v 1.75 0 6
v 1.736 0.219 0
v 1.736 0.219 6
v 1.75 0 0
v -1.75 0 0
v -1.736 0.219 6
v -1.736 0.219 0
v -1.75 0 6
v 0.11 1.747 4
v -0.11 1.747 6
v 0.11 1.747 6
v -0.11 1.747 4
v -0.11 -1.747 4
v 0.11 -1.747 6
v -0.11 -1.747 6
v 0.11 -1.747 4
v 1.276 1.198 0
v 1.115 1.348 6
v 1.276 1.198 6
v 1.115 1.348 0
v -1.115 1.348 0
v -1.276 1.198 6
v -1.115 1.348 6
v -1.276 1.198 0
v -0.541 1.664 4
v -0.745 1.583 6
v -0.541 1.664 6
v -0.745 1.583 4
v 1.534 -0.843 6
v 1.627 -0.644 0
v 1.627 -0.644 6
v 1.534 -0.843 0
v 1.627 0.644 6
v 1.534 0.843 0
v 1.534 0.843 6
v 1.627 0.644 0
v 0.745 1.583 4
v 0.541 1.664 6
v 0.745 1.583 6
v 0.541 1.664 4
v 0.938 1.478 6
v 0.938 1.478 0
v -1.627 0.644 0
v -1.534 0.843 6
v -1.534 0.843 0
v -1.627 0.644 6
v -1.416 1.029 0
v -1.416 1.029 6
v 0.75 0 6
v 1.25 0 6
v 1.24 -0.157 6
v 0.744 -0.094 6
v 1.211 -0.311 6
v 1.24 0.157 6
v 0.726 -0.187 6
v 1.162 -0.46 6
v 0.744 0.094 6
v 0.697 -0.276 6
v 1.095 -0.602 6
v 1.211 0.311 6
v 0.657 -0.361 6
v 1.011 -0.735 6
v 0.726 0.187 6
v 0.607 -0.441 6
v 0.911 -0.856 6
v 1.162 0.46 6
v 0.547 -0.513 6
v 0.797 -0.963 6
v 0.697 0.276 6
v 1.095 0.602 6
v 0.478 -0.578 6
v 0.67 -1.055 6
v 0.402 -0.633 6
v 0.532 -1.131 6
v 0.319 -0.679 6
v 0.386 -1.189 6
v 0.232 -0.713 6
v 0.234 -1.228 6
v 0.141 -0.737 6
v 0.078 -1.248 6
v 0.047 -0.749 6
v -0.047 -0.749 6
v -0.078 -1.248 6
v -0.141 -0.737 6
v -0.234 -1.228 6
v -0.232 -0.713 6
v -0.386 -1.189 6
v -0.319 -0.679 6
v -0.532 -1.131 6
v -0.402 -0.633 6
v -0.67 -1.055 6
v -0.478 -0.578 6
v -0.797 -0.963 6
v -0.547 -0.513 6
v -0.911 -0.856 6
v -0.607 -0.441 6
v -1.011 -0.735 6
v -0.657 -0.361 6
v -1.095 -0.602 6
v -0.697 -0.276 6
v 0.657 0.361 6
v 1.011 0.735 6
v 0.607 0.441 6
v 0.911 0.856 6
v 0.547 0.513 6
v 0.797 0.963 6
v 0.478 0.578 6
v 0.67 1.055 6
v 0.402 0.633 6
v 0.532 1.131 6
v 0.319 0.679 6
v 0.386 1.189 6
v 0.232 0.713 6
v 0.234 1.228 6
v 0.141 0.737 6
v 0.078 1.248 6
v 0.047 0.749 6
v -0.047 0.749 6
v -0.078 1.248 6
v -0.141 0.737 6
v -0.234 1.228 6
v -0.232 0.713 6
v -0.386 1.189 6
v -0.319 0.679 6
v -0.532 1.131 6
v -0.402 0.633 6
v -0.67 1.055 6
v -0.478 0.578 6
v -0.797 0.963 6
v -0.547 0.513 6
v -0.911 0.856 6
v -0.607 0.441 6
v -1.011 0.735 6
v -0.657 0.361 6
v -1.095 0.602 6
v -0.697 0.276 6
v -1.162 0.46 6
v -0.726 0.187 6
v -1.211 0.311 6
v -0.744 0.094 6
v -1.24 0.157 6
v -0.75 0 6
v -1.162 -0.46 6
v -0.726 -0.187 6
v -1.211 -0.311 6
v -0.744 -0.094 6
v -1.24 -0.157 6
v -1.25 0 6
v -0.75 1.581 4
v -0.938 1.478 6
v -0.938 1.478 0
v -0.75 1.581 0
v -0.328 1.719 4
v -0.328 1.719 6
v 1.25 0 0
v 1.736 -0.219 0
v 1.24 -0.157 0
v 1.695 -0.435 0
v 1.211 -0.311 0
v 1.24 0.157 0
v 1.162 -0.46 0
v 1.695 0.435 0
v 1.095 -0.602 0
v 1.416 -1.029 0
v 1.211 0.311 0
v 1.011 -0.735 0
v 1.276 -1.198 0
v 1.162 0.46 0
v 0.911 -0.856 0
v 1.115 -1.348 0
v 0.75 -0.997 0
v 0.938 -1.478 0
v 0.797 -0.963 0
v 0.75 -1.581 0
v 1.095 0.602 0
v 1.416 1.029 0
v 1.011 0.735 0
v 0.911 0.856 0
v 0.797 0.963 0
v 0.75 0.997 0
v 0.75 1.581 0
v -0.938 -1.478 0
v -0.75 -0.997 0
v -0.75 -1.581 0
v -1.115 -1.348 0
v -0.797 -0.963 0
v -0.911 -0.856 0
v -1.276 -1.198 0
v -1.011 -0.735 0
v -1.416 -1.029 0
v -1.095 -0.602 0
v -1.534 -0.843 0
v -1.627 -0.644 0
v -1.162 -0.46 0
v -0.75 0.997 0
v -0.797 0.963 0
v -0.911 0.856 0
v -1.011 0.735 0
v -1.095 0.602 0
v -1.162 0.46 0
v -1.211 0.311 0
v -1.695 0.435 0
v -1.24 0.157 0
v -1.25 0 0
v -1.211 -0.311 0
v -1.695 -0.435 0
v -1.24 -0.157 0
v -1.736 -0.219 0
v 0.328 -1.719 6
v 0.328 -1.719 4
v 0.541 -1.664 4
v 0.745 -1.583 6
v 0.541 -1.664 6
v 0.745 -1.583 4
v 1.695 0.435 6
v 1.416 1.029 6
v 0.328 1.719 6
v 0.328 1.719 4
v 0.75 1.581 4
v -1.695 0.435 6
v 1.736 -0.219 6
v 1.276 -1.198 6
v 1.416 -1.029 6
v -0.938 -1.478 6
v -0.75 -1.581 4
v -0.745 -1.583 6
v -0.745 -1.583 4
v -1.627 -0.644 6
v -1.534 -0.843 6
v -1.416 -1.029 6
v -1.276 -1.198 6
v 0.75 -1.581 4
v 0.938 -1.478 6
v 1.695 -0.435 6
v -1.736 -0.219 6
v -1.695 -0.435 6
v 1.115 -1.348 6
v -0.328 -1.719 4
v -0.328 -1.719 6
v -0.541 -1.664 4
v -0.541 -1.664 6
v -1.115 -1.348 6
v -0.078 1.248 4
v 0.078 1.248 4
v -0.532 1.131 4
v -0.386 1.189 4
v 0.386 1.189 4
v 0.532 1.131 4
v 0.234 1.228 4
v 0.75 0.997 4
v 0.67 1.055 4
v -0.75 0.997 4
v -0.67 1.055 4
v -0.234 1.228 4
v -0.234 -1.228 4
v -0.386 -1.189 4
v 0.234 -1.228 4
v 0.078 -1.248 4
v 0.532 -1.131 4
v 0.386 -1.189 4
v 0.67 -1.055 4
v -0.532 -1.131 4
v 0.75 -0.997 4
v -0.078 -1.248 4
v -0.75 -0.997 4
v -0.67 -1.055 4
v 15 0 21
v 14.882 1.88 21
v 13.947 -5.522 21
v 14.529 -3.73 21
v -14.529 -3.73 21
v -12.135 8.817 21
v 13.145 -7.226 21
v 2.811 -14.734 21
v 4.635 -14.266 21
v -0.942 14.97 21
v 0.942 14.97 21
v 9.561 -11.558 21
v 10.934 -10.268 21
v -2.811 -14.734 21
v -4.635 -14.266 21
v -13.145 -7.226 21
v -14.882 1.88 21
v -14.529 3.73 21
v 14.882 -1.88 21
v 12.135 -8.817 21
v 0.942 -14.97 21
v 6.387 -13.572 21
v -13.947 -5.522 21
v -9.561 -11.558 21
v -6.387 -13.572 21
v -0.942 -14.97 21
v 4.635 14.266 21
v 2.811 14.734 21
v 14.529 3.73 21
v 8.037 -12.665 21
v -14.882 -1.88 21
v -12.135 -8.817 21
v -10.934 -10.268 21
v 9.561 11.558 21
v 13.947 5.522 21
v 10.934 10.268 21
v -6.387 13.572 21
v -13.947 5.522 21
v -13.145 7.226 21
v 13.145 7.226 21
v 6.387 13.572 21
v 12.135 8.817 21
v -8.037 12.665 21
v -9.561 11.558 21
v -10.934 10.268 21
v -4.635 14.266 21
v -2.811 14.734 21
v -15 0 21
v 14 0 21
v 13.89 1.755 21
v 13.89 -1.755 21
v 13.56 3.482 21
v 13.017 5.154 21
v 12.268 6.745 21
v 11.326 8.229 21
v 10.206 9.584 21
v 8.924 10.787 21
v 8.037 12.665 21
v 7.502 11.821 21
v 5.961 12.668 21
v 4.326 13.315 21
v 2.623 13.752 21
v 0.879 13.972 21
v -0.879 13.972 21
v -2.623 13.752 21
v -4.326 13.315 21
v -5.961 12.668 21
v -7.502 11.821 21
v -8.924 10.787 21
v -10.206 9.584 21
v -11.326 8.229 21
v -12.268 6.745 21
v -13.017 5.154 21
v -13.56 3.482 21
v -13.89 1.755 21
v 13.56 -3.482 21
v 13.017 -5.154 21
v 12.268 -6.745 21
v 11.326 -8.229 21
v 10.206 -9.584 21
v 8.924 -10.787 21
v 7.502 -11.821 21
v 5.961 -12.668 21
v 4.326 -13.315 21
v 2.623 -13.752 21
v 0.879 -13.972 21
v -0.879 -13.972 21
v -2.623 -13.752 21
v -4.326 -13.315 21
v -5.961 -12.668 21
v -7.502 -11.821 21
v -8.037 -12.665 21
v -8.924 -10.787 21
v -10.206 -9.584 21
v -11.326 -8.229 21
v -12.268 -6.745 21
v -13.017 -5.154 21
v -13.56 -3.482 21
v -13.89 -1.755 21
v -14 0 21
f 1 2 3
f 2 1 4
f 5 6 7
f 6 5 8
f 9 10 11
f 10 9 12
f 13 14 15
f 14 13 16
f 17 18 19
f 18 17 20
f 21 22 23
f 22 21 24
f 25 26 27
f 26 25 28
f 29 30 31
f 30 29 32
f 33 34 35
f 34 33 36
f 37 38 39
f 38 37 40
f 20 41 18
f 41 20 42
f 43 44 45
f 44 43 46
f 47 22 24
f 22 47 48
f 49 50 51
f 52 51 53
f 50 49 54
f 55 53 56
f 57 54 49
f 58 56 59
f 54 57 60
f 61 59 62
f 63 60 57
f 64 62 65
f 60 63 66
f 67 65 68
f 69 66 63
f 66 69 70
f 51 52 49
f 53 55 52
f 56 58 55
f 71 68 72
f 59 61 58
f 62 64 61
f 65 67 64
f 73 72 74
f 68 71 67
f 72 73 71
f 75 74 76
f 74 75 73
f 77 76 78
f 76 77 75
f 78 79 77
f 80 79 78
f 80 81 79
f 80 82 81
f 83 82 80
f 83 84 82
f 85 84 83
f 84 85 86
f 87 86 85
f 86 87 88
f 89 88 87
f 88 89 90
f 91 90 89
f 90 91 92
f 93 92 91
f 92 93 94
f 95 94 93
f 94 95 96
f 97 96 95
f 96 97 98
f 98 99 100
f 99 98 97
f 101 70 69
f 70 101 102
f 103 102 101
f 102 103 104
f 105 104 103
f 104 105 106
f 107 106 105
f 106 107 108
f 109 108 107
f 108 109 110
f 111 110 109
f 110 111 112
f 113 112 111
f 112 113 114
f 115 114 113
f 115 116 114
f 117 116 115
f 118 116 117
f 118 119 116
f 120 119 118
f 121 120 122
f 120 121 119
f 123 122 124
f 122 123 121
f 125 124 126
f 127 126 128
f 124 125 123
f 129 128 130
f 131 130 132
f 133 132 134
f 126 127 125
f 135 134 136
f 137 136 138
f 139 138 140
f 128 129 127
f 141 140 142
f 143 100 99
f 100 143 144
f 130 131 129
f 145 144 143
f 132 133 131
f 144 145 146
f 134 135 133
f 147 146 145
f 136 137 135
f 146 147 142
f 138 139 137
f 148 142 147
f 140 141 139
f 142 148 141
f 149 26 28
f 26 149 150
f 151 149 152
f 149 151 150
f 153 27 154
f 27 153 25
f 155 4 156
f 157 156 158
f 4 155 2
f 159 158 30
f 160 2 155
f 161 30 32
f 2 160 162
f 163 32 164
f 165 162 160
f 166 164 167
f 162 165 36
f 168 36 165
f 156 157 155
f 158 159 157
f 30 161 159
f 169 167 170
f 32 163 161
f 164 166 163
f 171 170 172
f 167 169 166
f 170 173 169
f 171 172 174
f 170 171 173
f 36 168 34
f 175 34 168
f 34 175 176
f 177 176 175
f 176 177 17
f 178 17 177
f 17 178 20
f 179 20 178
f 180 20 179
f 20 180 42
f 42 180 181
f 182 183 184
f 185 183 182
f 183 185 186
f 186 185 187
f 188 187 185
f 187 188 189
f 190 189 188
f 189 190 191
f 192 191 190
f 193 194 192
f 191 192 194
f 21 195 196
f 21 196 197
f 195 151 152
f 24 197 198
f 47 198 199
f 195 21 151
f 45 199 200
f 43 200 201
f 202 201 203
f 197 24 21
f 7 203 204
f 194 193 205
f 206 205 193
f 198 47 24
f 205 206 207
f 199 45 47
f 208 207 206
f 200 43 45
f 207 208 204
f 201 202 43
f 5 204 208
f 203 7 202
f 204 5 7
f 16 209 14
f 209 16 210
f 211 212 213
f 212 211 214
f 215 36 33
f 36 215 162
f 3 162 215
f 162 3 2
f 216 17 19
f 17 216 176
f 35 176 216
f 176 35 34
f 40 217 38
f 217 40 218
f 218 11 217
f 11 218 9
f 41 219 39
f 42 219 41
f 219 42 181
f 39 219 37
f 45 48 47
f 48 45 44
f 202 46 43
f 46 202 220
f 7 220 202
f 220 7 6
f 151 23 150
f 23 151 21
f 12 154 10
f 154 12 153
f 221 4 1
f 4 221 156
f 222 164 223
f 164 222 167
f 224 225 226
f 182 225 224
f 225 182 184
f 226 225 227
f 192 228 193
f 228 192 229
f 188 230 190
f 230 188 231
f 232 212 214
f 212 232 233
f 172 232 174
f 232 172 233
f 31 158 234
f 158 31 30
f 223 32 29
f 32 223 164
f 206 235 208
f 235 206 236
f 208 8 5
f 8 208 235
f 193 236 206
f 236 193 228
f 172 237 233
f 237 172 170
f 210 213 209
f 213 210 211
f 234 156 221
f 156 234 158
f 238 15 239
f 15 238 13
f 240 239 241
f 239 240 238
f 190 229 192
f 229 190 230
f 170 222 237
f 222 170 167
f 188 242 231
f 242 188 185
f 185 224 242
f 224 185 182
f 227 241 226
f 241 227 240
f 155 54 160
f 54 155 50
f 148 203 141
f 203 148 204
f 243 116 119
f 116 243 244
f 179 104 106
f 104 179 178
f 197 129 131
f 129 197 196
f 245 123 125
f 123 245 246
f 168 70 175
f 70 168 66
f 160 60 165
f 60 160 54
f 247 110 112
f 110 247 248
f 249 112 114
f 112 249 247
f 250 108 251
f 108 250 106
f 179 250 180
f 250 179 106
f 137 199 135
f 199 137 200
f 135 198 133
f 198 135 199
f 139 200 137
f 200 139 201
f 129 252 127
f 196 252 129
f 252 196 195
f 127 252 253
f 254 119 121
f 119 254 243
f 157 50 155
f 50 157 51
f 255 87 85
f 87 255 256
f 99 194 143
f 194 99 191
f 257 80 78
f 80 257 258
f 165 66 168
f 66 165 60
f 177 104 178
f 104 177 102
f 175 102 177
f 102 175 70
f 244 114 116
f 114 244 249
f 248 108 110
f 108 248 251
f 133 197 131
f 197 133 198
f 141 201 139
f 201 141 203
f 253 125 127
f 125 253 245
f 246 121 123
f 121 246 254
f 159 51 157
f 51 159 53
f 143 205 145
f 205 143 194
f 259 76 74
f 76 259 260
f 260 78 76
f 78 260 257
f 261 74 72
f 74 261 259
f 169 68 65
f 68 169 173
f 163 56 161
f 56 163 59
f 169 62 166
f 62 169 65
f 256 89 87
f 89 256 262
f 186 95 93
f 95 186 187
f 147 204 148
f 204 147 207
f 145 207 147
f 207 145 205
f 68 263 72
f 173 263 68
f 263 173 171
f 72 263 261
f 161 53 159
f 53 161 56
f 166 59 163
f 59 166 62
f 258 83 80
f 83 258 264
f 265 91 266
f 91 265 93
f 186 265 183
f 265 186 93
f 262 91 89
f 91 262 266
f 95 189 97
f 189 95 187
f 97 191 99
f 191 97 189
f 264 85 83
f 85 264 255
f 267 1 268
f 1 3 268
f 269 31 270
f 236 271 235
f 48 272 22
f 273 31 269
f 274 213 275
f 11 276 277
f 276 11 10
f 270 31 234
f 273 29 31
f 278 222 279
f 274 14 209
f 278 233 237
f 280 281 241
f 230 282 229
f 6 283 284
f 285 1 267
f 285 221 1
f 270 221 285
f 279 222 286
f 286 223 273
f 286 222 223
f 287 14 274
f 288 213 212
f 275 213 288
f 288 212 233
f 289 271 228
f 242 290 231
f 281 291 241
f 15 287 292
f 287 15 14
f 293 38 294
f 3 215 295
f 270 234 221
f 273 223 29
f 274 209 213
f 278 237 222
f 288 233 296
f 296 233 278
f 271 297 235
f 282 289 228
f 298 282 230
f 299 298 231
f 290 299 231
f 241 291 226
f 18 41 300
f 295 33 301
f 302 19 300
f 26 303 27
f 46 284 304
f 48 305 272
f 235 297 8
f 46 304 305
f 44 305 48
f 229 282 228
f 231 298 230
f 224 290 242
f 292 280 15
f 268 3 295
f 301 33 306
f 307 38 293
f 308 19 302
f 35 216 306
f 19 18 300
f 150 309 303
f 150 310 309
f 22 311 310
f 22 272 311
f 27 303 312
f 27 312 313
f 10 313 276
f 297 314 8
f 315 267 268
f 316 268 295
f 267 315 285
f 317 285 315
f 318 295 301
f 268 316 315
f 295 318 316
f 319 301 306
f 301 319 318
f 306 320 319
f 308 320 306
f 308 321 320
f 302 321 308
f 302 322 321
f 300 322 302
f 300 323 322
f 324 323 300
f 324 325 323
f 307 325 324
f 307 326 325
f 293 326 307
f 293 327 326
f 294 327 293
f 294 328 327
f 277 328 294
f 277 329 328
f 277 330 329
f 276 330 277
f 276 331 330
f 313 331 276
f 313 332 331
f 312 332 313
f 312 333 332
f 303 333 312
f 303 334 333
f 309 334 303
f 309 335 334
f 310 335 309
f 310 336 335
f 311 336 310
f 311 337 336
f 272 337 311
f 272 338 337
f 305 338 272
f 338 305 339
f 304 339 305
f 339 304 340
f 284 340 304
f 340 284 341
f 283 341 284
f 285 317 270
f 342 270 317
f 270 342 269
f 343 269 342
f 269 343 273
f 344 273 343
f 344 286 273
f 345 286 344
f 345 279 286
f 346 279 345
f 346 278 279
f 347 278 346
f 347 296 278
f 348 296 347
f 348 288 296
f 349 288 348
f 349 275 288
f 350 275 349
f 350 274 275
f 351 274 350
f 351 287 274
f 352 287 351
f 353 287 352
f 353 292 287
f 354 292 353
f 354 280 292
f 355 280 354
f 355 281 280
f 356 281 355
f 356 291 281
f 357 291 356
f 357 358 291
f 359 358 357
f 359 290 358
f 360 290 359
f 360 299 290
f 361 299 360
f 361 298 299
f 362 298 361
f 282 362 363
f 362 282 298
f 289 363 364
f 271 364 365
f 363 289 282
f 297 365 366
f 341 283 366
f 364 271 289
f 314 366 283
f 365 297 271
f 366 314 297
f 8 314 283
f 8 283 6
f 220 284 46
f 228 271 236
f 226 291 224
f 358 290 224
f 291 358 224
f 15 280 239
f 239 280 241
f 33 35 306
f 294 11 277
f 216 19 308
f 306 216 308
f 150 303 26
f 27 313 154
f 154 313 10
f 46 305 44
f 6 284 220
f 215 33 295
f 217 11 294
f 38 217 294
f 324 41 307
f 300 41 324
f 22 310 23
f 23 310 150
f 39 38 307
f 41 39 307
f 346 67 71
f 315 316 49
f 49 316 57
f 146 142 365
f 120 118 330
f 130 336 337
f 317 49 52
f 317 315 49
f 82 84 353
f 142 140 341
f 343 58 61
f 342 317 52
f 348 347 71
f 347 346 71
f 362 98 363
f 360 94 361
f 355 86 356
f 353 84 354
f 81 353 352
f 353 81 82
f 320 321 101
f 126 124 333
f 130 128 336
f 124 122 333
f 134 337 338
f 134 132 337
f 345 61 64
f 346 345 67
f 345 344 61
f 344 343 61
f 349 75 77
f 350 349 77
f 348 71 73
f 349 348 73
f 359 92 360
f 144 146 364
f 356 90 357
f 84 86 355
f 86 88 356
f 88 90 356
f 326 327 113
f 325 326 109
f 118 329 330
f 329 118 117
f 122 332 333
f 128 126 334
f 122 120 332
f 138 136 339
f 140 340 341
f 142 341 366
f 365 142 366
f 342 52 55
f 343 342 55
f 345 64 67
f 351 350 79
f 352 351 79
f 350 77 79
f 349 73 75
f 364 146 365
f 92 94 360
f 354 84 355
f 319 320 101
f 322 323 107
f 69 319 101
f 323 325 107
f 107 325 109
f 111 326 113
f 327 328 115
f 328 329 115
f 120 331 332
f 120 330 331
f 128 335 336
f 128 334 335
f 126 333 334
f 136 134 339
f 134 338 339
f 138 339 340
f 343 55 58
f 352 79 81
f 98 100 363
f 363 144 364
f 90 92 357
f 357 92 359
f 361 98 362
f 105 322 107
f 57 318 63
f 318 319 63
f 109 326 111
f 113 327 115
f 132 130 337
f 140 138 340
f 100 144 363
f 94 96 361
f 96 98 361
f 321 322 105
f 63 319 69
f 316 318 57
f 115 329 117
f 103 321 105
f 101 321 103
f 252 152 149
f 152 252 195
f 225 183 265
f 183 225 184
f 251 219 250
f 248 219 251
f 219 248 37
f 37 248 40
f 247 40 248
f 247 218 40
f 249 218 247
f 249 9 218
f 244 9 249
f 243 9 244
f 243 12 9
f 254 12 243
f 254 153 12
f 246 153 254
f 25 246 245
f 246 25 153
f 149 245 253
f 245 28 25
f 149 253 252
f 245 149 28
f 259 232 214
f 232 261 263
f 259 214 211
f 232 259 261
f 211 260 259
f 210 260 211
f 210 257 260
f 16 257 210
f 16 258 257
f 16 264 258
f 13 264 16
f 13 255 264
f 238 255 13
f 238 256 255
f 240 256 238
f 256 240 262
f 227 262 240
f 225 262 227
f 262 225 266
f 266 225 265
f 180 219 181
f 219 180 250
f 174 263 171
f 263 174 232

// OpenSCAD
$fn = 50;


difference() {
	union() {
		translate(v = [0, 0, 0]) {
			rotate(a = [0, 0, 0]) {
				difference() {
					union() {
						cylinder(h = 6, r = 1.7500000000);
					}
					union() {
						cylinder(h = 6, r = 1.2500000000);
					}
				}
			}
		}
		translate(v = [0, 0, 6]) {
			rotate(a = [0, 0, 0]) {
				difference() {
					union() {
						cylinder(h = 15, r1 = 1.7500000000, r2 = 15.0000000000);
					}
					union() {
						cylinder(h = 15, r1 = 0.7500000000, r2 = 14.0000000000);
					}
				}
			}
		}
	}
	union() {
		#translate(v = [-0.7500000000, -5.0000000000, 0]) {
			cube(size = [1.5000000000, 10, 4]);
		}
	}
}
